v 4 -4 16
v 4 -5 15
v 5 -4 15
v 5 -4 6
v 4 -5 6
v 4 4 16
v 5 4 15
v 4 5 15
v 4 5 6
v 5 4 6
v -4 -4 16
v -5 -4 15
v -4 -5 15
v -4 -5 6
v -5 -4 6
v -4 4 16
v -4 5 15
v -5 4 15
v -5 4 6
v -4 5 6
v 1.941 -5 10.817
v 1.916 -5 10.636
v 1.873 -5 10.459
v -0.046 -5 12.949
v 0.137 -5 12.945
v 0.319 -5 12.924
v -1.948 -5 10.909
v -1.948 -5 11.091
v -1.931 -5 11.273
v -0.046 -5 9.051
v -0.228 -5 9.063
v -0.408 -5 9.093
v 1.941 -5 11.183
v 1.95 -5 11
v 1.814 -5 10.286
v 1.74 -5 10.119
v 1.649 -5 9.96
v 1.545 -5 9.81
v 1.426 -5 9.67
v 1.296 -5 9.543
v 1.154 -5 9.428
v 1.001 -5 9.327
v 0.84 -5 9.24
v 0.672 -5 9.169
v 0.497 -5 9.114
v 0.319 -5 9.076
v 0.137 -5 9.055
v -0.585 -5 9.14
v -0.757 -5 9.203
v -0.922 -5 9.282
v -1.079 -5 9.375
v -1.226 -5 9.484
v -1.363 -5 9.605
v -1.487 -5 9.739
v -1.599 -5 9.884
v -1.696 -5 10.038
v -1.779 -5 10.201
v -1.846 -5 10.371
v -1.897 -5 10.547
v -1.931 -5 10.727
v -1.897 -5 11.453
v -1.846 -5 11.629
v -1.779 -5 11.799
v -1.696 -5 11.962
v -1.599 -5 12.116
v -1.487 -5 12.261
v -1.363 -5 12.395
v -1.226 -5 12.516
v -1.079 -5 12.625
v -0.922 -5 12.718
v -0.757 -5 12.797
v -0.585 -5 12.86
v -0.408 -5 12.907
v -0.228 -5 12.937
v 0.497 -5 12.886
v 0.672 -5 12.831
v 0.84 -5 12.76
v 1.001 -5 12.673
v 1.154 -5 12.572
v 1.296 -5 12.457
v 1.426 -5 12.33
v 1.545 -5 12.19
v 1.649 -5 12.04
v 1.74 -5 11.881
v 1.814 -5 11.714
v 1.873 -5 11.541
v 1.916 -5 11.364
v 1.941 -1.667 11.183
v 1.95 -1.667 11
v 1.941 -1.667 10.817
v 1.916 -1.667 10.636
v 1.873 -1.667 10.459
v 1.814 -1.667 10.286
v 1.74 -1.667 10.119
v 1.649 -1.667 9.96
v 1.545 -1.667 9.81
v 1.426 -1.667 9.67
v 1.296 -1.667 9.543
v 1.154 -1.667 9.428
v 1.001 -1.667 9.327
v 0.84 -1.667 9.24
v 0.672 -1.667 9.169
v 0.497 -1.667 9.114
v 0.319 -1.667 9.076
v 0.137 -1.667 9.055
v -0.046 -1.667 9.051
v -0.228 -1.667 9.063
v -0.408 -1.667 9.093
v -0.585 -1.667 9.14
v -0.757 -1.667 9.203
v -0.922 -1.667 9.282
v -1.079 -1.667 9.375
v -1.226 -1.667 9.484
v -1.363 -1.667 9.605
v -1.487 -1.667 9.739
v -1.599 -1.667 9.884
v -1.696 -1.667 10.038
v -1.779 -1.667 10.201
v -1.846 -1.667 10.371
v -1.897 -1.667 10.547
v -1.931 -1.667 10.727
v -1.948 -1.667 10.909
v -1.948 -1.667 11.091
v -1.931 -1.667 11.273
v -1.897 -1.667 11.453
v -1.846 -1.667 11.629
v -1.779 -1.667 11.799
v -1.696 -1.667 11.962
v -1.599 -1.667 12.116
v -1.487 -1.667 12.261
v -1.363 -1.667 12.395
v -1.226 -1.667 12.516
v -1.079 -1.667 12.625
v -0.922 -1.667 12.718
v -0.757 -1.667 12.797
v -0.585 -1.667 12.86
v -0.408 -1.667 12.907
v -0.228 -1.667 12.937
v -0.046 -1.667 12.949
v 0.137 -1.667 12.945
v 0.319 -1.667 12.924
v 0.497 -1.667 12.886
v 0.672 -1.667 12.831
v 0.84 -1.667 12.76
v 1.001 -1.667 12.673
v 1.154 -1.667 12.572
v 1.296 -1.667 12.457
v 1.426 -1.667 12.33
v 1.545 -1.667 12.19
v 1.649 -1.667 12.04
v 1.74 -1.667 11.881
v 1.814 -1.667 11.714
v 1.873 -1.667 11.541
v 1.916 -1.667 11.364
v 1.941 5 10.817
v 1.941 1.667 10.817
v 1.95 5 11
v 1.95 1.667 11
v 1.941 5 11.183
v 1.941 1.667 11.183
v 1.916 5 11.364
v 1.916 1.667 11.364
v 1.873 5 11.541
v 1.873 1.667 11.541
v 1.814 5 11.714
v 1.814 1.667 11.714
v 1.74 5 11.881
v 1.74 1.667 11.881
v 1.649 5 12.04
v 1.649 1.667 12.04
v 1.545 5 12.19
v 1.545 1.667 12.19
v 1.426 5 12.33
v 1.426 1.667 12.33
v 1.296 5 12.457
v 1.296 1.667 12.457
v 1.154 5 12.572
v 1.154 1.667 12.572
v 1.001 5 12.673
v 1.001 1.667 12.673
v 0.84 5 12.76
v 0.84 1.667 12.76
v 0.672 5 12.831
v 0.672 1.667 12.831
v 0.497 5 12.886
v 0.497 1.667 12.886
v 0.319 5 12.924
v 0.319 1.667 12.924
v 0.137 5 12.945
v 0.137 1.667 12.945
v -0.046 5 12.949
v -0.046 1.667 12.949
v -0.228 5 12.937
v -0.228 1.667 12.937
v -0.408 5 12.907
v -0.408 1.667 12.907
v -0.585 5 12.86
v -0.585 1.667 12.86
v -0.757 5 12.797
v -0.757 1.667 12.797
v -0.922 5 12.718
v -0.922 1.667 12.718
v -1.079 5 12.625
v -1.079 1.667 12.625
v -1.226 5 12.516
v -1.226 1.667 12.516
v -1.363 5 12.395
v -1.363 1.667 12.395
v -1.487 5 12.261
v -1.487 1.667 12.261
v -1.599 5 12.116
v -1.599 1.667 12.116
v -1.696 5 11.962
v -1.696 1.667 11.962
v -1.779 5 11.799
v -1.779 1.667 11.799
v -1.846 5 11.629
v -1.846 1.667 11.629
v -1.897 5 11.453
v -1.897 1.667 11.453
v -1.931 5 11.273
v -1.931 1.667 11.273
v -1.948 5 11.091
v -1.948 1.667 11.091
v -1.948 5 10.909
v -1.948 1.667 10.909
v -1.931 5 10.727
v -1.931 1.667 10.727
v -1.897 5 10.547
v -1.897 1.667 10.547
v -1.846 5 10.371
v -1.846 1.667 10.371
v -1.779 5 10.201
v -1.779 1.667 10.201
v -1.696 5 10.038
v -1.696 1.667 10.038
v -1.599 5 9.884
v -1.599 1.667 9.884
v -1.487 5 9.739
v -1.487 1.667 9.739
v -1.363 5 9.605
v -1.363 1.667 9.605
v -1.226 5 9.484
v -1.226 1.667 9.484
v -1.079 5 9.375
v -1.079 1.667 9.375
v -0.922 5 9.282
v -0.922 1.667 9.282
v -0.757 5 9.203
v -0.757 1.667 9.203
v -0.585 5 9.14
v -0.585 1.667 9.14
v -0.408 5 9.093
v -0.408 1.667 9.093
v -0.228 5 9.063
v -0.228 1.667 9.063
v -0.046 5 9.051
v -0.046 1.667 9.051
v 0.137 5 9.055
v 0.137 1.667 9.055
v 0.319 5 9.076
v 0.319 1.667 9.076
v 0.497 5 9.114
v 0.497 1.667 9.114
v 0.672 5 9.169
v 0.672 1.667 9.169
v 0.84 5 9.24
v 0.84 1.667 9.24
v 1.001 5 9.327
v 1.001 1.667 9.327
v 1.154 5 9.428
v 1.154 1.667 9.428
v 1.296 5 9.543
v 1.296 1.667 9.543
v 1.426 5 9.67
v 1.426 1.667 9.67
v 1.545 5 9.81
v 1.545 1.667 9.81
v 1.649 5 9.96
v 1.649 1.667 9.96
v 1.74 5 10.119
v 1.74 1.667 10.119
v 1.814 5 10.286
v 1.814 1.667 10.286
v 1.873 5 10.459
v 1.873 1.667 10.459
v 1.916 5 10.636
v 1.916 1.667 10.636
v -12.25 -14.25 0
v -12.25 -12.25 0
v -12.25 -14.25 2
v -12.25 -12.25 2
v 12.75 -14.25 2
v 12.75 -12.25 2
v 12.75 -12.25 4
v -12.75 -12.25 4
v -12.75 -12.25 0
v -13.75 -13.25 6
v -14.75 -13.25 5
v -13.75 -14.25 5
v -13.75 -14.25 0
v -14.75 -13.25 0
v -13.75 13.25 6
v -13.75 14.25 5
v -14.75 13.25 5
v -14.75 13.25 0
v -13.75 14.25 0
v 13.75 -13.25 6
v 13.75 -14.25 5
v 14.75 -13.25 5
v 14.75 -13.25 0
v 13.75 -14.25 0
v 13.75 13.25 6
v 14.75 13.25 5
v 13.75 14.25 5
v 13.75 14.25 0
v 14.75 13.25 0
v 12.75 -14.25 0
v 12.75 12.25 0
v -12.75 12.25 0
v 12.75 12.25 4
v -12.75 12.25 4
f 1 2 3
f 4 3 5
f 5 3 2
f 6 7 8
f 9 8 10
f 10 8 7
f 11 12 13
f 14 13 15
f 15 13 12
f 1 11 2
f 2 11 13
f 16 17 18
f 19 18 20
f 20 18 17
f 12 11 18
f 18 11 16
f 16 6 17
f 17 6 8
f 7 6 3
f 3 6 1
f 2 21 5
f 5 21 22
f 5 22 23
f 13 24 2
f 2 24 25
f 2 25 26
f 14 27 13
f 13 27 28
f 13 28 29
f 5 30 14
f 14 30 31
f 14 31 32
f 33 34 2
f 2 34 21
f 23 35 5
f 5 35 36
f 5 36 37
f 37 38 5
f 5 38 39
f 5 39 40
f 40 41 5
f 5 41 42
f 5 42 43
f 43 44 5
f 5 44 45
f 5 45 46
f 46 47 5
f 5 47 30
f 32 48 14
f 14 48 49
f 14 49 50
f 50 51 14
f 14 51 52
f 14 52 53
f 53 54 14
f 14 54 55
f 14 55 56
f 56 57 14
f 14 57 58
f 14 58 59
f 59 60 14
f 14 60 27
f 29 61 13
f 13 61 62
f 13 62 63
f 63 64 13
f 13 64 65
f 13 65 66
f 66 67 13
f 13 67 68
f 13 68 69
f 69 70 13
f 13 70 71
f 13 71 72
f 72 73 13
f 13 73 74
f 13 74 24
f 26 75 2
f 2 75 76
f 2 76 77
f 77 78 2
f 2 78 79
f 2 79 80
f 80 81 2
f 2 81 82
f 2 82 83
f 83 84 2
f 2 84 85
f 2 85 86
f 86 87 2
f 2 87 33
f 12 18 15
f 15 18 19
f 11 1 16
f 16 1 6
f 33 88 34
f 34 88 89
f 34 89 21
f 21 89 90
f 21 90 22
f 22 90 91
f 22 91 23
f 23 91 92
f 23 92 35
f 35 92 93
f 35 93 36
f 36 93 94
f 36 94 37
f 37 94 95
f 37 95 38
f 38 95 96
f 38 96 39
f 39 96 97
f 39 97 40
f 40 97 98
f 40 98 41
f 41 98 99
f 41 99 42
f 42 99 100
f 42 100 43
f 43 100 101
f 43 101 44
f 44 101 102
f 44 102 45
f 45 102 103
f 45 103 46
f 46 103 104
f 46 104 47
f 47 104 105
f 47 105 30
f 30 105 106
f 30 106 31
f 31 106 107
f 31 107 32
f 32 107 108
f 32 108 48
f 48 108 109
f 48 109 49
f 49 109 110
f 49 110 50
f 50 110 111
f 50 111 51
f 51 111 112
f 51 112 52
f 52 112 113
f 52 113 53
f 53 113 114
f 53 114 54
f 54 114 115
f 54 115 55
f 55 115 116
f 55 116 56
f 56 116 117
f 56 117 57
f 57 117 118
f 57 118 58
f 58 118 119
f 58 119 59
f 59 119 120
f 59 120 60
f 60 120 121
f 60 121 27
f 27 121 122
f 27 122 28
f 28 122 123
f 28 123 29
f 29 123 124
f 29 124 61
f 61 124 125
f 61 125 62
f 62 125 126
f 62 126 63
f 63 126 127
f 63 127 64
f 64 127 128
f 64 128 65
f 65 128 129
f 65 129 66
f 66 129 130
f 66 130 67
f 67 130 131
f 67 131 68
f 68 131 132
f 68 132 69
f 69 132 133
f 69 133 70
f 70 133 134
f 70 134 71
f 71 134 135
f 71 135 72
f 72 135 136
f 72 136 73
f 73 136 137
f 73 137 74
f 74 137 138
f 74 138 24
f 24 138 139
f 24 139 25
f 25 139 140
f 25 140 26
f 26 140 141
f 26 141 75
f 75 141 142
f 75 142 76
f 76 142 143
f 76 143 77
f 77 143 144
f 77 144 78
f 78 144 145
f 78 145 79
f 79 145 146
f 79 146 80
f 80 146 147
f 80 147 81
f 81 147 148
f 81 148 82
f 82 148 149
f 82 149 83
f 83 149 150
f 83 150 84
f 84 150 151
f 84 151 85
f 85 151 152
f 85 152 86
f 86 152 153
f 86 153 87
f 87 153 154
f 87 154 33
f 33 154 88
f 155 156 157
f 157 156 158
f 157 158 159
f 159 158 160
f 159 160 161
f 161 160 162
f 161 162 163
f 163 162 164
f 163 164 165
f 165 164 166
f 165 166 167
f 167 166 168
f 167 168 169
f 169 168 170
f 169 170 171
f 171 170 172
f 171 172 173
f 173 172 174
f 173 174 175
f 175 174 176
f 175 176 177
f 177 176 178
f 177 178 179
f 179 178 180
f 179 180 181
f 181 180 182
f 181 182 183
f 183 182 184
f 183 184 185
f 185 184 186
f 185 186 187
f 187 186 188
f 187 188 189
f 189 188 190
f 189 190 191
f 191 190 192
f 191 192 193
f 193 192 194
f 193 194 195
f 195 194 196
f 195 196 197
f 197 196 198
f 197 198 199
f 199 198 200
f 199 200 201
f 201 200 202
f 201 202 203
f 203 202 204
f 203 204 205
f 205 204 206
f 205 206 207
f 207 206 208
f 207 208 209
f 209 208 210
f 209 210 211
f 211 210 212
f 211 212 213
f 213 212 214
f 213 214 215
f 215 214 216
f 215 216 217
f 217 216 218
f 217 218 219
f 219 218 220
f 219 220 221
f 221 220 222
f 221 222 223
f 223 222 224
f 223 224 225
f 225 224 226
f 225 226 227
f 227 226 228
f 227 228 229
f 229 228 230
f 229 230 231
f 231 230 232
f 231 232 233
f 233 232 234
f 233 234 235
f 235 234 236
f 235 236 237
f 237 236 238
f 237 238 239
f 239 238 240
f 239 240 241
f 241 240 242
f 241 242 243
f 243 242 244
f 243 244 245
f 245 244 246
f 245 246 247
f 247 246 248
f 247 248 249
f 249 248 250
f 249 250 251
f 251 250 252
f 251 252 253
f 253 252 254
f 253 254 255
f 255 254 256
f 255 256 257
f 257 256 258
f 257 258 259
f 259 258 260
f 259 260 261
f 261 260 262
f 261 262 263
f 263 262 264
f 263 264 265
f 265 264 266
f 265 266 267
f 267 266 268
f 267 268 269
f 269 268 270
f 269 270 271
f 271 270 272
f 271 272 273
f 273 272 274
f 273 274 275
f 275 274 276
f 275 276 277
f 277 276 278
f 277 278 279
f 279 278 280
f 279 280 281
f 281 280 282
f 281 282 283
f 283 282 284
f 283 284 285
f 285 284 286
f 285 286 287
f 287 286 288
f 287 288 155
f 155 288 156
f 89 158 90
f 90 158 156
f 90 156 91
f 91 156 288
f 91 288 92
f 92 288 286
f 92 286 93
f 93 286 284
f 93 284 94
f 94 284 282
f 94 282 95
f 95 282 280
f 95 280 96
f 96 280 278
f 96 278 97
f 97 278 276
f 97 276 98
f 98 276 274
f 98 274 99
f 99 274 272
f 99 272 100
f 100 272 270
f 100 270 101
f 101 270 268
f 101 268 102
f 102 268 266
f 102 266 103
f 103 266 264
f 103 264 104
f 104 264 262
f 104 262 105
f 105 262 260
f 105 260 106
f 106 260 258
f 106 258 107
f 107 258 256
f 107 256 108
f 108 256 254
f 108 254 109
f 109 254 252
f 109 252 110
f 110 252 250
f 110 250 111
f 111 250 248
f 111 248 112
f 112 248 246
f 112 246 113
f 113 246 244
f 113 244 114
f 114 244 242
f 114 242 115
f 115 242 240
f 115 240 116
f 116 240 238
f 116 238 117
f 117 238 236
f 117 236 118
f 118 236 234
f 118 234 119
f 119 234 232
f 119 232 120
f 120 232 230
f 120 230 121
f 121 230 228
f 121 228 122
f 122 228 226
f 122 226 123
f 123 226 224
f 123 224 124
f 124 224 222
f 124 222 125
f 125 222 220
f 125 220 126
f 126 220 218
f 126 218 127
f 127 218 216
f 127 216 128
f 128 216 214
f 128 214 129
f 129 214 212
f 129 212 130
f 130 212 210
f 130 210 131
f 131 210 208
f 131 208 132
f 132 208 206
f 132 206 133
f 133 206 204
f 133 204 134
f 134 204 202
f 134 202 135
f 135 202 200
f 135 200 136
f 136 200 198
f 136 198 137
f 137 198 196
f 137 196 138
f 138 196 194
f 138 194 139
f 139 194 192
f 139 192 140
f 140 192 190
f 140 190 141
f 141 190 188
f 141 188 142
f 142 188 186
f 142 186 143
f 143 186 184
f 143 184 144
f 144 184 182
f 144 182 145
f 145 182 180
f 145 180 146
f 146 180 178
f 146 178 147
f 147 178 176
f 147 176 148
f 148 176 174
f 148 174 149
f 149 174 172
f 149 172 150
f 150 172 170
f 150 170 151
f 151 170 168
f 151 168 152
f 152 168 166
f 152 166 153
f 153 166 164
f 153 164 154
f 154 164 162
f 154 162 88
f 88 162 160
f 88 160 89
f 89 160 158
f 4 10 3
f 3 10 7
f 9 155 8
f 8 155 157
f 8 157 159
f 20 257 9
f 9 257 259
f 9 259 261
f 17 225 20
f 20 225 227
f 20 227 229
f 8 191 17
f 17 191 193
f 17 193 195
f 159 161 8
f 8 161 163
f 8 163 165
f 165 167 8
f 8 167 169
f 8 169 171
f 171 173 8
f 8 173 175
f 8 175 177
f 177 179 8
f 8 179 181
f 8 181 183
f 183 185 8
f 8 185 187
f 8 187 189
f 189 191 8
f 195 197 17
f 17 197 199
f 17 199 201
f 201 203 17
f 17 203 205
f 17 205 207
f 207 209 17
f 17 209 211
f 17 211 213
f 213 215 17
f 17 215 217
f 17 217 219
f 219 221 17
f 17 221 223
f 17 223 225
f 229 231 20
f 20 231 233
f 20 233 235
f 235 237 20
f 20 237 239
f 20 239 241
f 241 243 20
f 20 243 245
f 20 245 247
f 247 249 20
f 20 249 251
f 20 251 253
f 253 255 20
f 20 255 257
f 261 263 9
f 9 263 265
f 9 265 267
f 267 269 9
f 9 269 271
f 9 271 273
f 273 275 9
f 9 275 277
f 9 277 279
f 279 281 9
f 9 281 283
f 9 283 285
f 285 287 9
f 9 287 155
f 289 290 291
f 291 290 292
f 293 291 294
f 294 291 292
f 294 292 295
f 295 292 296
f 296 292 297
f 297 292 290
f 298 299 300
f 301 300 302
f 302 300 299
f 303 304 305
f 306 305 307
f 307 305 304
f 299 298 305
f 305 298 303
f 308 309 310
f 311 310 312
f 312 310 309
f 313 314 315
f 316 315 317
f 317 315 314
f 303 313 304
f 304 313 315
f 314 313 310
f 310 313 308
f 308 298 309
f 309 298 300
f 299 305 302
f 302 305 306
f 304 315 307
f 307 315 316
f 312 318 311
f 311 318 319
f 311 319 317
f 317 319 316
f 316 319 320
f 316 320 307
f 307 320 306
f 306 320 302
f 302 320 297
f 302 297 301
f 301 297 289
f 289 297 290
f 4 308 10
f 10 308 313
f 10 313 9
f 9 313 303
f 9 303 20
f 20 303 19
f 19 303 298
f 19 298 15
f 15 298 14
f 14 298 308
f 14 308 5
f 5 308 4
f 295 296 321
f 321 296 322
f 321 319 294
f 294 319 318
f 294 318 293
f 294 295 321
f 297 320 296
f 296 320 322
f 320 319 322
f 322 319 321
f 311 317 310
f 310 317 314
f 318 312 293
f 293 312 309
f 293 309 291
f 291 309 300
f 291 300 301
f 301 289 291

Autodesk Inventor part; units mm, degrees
ref_plane "YZ Plane" through (0, 0, 0) normal (1, 0, 0) x (0, 1, 0)
ref_plane "XZ Plane" through (0, 0, 0) normal (0, 1, 0) x (-1, 0, 0)
ref_plane "XY Plane" through (0, 0, 0) normal (0, 0, 1) x (1, 0, 0)
sketch "Skizze1" plane through (0, 0, 0) normal (0, 0, 1) x (1, 0, 0)
  point P0 (0, 0)
sketch "Skizze2" plane through (0, 0, 0) normal (0, 0, 1) x (1, 0, 0)
  line L0 (-12.75, 12.25) -> (12.75, 12.25)
  line L1 (12.75, 12.25) -> (12.75, -12.25)
  line L2 (12.75, -12.25) -> (-12.75, -12.25)
  line L3 (-12.75, -12.25) -> (-12.75, 12.25)
  line L4 (0, 19.95) -> (0, -19.95) projected
  line L5 (-20.65, 0) -> (20.65, 0) projected
  line L6 (-14.75, 14.25) -> (14.75, 14.25)
  line L7 (14.75, 14.25) -> (14.75, -14.25)
  line L8 (14.75, -14.25) -> (-14.75, -14.25)
  line L9 (-14.75, -14.25) -> (-14.75, 14.25)
  point P0 (0, 0)
  dimension "d0" = 25.5
  dimension "d1" = 24.5
  dimension "d2" = 2
  dimension "d3" = 2
  dimension "d4" = 2
  dimension "d5" = 2
extrude "Extrusion1" add sketch "Skizze2" along normal blind 4 contours L3 L5 L9 L6 L4 L0 | L4 L6 L7 L5 L1 L0 | L3 L2 L4 L8 L9 L5 | L5 L7 L8 L4 L2 L1
sketch "Skizze3" plane through (0, 0, 4) normal (0, 0, 1) x (1, 0, 0)
  line L0 (14.75, -14.25) -> (-14.75, -14.25) projected
  line L1 (-14.75, 14.25) -> (14.75, 14.25)
  line L2 (14.75, 14.25) -> (14.75, -14.25)
  line L3 (14.75, -14.25) -> (-14.75, -14.25)
  line L4 (-14.75, -14.25) -> (-14.75, 14.25)
  point P0 (0, 0)
extrude "Extrusion2" add sketch "Skizze3" along normal blind 2
chamfer "Fase1" distance 1 angle 45 8 edges at (14.75, 14.25, 3) (-14.75, 14.25, 3) (-14.75, 0, 6) (0, -14.25, 6) (-14.75, -14.25, 3) (14.75, -14.25, 3) (14.75, 0, 6) (0, 14.25, 6)
sketch "Skizze4" plane through (0, 0, 0) normal (0, 0, -1) x (-1, 0, 0)
  line L0 (12.75, -12.25) -> (-12.75, -12.25) projected
  line L1 (-12.75, -12.25) -> (12.25, -12.25)
  line L2 (12.25, -12.25) -> (12.25, -17.2138)
  line L3 (12.25, -17.2138) -> (-12.75, -17.2138)
  line L4 (-12.75, -17.2138) -> (-12.75, -12.25)
  point P0 (0, 0)
extrude "Extrusion3" cut sketch "Skizze4" against normal blind 2
sketch "Skizze5" plane through (0, 0, 0) normal (0, 0, -1) x (-1, 0, 0)
  circle A0 centre (0.25, 13.25) radius 0.5
  line L0 (13.75, 14.25) -> (-13.75, 14.25) projected
  line L1 (14.75, -13.25) -> (14.75, 13.25) projected
  line L2 (-14.75, 13.25) -> (-14.75, -13.25) projected
  circle A1 centre (-9.75, 13.25) radius 0.5
  circle A2 centre (10.25, 13.25) radius 0.5
  circle A3 centre (-13.75, 0.25) radius 0.5
  circle A4 centre (-13.75, -9.75) radius 0.5
  circle A5 centre (-13.75, 10.25) radius 0.5
  line L3 (0, -19.95) -> (0, 19.95) projected
  circle A6 centre (13.75, 0.25) radius 0.5
  circle A7 centre (13.75, -9.75) radius 0.5
  circle A8 centre (13.75, 10.25) radius 0.5
  point P0 (0, 0)
  dimension "d15" = 1
  dimension "d16" = 1
  dimension "d17" = 1
  dimension "d18" = 1
  dimension "d19" = 10
  dimension "d20" = 10
  dimension "d21" = 1
  dimension "d22" = 1
  dimension "d23" = 1
  dimension "d24" = 1
  dimension "d25" = 10
  dimension "d26" = 10
sketch "Skizze6" plane through (0, 0, 6) normal (0, 0, 1) x (1, 0, 0)
  line L0 (-5, 5) -> (5, 5)
  line L1 (5, 5) -> (5, -5)
  line L2 (5, -5) -> (-5, -5)
  line L3 (-5, -5) -> (-5, 5)
  line L4 (0, 19.95) -> (0, -19.95) projected
  line L5 (-20.65, 0) -> (20.65, 0) projected
  point P0 (0, 0)
  dimension "d29" = 10
  dimension "d30" = 10
extrude "Extrusion5" add sketch "Skizze6" along normal blind 10
sketch "Skizze9" plane through (-5, 5, 6) normal (0, 1, 0) x (1, 0, 0)
  circle A0 centre (5, -5) radius 1.95
  line L0 (10, -10) -> (0, -10) projected
  point P0 (5, 6)
  dimension "d52" = 3.9
  dimension "d53" = 5
extrude "Extrusion8" cut sketch "Skizze9" against normal blind 26
chamfer "Fase4" distance 1 angle 45 8 edges at (-5, 0, 16) (0, -5, 16) (5, -5, 11) (5, 5, 11) (0, 5, 16) (-5, 5, 11) (-5, -5, 11) (5, 0, 16)
properties part number "Raspberrycamhalter"
